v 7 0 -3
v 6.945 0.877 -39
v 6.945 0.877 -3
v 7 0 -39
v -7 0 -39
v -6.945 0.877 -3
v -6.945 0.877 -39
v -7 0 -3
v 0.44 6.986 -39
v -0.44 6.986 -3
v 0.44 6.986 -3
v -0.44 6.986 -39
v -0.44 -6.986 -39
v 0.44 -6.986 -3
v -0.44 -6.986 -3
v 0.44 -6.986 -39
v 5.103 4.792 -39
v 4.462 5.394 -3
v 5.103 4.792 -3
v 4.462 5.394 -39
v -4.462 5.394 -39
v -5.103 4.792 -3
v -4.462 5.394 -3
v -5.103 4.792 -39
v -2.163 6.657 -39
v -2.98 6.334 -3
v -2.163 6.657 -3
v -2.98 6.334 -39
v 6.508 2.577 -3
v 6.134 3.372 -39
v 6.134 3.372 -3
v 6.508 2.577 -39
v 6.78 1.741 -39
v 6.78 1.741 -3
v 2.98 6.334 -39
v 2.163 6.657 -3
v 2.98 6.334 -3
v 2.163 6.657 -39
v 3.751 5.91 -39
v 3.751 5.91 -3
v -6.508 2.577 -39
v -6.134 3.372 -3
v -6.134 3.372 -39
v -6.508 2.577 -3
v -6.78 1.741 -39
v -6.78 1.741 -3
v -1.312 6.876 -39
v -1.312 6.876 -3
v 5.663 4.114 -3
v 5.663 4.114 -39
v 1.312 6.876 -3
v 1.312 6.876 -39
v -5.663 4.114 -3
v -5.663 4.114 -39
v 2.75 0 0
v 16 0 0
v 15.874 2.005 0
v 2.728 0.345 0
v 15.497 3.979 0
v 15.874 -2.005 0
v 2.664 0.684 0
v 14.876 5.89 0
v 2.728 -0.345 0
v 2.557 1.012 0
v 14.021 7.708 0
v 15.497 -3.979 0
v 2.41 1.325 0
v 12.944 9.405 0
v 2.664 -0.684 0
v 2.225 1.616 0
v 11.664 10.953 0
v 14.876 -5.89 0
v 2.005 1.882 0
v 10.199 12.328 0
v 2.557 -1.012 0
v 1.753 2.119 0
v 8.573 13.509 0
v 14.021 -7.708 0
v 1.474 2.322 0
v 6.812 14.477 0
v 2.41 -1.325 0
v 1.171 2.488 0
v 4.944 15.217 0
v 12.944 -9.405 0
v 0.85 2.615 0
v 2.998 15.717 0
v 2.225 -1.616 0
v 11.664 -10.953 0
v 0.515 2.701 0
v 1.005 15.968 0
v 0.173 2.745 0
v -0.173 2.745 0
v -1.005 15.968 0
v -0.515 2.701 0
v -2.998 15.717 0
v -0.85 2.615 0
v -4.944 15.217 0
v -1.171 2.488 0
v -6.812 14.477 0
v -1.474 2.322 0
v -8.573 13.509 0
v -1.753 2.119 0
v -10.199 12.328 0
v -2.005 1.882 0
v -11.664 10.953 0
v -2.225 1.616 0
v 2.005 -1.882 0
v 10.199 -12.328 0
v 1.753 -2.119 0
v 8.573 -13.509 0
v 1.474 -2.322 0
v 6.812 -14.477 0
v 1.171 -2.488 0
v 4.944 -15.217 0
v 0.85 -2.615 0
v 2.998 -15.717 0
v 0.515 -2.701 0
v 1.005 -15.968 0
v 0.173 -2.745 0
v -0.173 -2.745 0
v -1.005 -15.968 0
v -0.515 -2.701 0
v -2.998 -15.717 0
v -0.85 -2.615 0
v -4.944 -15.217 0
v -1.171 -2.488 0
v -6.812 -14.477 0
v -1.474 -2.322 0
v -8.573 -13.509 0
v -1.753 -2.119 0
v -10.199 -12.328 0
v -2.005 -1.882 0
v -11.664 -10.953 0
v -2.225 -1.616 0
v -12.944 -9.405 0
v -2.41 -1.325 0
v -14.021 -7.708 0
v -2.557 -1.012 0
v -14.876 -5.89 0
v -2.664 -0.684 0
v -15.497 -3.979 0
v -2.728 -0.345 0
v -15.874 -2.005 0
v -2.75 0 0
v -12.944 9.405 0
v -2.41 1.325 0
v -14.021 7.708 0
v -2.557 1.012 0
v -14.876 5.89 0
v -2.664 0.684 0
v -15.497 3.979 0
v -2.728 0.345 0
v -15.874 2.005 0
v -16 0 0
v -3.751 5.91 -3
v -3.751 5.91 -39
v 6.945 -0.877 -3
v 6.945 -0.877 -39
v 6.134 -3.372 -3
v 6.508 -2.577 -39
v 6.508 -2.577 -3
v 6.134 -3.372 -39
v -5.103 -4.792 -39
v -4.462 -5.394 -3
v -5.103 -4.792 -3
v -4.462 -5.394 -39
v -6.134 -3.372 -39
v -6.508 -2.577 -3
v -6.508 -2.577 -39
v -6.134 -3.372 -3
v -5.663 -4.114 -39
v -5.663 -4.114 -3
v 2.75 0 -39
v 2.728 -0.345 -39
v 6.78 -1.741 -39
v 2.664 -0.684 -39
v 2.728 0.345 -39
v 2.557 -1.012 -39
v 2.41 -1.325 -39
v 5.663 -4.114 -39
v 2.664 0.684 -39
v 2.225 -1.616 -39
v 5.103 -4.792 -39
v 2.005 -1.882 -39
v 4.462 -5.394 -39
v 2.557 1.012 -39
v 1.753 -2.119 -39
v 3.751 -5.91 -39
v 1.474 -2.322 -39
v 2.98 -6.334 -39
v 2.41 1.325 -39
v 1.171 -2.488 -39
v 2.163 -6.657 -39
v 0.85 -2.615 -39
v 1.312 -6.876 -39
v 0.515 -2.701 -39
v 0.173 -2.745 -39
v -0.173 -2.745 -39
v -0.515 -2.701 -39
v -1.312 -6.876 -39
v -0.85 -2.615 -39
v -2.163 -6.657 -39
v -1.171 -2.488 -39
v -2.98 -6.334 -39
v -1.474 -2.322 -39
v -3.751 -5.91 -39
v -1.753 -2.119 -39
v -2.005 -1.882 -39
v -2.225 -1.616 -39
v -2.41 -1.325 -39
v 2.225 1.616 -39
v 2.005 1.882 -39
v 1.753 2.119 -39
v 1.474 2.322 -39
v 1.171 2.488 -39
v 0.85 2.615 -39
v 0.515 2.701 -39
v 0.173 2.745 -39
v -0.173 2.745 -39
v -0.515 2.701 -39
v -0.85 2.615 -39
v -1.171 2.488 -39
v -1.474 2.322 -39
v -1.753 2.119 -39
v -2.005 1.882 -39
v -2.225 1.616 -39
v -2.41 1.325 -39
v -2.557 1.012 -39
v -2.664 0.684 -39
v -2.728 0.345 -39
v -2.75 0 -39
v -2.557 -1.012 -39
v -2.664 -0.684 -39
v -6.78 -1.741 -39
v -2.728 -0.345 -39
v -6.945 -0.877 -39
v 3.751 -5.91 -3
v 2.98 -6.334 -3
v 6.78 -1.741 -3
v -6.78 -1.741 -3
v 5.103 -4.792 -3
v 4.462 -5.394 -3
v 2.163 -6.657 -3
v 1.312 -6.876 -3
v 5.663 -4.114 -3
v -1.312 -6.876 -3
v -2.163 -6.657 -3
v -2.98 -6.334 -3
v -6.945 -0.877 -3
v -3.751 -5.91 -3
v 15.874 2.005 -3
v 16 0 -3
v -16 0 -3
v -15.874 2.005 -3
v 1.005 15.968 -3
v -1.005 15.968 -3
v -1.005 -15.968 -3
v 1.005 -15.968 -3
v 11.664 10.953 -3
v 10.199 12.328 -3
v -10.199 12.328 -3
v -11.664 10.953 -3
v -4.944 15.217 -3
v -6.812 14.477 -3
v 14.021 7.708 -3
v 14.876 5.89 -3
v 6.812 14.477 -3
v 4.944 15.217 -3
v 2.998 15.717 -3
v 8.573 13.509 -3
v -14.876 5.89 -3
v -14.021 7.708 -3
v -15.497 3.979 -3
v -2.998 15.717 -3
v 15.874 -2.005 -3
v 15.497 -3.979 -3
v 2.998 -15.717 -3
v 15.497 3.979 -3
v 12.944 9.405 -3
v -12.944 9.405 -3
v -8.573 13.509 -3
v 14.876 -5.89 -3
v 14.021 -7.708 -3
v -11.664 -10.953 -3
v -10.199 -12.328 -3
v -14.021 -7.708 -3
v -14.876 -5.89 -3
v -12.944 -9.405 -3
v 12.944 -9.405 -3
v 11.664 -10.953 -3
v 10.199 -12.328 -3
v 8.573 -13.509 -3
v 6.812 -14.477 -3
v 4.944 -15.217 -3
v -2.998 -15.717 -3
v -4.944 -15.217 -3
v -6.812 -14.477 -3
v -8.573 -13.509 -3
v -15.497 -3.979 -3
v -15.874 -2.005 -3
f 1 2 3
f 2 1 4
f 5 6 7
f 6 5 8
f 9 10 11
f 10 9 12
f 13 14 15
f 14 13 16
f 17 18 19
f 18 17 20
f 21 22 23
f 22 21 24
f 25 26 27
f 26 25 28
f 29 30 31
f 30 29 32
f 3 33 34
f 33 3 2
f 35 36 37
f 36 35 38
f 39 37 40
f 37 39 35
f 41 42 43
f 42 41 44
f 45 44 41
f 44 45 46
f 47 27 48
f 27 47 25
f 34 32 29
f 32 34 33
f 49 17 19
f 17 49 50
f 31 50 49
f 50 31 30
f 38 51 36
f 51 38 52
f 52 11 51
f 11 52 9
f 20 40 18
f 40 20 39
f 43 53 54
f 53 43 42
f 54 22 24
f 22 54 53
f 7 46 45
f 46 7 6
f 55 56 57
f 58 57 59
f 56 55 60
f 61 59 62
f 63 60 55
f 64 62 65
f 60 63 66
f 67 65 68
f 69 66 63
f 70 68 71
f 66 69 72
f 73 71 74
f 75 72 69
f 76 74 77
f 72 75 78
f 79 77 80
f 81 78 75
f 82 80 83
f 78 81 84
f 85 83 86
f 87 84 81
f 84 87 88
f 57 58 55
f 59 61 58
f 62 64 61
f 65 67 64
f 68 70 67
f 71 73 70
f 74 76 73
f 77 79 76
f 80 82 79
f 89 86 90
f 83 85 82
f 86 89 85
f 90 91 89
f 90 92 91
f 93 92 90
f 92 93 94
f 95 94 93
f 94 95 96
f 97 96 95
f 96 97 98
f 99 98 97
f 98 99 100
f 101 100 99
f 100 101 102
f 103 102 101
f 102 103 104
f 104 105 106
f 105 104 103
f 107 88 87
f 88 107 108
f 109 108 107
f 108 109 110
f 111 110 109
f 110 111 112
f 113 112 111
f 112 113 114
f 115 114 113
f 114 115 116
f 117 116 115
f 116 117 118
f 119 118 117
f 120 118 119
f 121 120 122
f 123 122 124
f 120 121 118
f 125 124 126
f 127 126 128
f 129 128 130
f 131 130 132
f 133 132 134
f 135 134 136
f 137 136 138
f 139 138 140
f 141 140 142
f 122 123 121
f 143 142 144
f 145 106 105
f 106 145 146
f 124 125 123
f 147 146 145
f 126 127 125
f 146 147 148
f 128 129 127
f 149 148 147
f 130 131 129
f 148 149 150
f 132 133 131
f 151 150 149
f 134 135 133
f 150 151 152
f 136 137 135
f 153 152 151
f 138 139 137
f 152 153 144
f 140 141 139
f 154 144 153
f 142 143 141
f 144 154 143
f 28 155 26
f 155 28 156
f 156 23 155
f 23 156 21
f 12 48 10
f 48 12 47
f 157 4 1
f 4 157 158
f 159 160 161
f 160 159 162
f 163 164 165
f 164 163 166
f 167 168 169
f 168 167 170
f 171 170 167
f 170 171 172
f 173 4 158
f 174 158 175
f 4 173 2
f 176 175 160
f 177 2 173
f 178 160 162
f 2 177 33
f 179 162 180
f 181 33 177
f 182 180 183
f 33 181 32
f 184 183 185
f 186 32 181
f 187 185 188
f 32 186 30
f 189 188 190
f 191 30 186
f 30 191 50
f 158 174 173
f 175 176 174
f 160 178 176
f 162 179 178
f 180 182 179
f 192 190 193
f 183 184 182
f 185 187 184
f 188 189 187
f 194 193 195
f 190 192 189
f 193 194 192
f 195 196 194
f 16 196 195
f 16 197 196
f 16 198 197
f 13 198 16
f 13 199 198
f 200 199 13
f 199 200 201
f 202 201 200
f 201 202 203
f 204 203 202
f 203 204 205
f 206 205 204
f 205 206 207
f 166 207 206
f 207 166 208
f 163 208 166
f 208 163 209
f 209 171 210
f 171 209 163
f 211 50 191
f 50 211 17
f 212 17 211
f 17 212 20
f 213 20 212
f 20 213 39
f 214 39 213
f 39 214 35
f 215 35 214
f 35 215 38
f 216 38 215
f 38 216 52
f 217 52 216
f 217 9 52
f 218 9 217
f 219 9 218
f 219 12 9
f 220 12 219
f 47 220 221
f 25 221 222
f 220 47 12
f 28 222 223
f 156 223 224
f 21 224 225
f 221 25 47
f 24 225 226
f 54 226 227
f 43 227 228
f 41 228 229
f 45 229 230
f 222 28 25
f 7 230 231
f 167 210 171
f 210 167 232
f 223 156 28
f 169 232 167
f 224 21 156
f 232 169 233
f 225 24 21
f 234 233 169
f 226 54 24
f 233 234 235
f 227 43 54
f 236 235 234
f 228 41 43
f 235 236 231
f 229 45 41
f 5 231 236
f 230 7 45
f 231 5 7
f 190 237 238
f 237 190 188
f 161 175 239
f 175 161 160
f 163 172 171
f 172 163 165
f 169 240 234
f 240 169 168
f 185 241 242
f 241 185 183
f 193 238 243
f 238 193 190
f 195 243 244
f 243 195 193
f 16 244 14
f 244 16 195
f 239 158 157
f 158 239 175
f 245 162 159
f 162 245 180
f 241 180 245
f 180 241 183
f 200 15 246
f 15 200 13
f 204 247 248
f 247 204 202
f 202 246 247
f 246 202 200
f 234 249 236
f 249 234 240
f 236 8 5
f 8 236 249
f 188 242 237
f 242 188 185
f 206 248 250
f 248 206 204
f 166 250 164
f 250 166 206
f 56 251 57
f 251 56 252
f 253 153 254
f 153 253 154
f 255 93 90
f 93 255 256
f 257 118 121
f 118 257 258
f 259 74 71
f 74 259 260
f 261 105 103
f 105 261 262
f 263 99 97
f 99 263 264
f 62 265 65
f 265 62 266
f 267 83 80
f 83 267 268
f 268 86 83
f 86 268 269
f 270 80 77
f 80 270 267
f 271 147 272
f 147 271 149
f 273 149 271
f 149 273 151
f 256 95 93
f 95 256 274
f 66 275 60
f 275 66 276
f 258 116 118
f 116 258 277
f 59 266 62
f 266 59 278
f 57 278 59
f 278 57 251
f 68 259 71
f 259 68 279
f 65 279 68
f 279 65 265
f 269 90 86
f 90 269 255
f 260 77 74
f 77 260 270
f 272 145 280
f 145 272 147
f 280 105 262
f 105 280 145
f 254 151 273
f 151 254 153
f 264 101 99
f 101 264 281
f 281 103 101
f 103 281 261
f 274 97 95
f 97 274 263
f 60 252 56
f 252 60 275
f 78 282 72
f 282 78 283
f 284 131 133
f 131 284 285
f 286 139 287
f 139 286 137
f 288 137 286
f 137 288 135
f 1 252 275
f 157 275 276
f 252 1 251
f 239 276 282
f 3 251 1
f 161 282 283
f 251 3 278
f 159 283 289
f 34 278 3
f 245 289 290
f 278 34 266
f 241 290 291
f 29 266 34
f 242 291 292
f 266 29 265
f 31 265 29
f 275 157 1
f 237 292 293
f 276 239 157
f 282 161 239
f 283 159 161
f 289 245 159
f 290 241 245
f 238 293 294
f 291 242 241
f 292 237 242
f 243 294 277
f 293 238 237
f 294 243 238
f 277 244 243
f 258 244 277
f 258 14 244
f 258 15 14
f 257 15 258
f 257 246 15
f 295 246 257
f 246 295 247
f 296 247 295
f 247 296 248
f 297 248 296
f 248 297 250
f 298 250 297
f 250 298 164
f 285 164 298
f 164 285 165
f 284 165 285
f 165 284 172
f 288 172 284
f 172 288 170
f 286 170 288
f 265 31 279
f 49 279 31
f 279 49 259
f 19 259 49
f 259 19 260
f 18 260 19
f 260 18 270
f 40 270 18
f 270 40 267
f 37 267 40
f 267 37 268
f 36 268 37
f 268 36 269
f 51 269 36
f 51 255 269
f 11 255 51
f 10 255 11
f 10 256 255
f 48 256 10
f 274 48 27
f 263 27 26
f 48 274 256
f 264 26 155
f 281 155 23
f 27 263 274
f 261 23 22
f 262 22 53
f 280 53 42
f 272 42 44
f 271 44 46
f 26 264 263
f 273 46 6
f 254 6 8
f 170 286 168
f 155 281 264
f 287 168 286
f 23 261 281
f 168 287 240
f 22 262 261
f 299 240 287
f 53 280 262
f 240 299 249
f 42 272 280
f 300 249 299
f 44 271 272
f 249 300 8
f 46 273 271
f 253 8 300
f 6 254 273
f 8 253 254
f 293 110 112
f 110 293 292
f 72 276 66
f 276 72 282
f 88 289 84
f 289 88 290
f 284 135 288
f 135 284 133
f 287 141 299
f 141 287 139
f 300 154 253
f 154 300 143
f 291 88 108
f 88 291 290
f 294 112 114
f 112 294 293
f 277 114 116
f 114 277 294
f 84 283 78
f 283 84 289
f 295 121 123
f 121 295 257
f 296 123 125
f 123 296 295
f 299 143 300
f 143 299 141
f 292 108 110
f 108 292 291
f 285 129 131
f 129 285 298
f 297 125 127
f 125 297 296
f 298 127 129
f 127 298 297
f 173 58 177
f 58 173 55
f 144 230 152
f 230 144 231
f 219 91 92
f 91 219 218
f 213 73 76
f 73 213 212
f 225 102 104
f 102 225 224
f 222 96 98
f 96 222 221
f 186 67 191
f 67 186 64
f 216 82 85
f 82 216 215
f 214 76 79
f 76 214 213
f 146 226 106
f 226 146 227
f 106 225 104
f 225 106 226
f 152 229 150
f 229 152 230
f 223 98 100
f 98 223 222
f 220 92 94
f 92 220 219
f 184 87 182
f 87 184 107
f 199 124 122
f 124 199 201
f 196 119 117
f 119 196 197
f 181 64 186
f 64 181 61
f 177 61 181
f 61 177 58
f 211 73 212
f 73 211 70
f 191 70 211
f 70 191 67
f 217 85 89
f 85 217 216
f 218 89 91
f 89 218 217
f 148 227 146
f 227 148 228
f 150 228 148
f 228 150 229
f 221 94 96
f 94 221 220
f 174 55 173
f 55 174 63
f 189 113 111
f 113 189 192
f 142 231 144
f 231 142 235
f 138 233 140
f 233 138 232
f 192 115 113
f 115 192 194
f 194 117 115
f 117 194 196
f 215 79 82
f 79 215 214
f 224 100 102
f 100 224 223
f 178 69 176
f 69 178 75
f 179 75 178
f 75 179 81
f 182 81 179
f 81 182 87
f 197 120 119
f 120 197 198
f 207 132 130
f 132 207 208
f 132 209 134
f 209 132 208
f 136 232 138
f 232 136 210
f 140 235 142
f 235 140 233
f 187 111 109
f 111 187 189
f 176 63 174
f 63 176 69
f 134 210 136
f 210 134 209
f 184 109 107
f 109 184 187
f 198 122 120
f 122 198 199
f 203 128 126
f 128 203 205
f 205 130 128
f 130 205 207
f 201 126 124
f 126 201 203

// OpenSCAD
$fn = 50;


difference() {
	union() {
		translate(v = [0, 0, -39.0000000000]) {
			cylinder(h = 39, r = 7.0000000000);
		}
		translate(v = [0, 0, -3.0000000000]) {
			cylinder(h = 3, r = 16.0000000000);
		}
	}
	union() {
		#translate(v = [0, 0, -39]) {
			cylinder(h = 39, r = 2.7500000000);
		}
	}
}
